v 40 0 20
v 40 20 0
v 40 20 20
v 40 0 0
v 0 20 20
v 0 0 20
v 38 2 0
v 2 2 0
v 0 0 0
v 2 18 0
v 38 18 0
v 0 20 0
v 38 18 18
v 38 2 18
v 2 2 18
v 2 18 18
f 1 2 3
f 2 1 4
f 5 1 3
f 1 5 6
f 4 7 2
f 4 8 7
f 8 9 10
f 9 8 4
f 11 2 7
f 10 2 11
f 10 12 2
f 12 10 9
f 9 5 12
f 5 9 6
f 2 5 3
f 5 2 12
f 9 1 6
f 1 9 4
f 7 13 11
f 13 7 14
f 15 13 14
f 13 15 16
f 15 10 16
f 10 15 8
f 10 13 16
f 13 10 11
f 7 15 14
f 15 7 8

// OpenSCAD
module main_object() {
    difference() {
        // Outer rectangular cuboid
        translate([0, 0, 0])
            cube([40, 20, 20]);
        
        // Inner cubic cutout creating the slant
        translate([2, 2, 0])
            cube([36, 16, 18]);

        // Triangular partition cut
        translate([2, 2, 0])
            rotate([0, 45, 0])
                cube([50, 3, 18]);
    }
}

main_object();
